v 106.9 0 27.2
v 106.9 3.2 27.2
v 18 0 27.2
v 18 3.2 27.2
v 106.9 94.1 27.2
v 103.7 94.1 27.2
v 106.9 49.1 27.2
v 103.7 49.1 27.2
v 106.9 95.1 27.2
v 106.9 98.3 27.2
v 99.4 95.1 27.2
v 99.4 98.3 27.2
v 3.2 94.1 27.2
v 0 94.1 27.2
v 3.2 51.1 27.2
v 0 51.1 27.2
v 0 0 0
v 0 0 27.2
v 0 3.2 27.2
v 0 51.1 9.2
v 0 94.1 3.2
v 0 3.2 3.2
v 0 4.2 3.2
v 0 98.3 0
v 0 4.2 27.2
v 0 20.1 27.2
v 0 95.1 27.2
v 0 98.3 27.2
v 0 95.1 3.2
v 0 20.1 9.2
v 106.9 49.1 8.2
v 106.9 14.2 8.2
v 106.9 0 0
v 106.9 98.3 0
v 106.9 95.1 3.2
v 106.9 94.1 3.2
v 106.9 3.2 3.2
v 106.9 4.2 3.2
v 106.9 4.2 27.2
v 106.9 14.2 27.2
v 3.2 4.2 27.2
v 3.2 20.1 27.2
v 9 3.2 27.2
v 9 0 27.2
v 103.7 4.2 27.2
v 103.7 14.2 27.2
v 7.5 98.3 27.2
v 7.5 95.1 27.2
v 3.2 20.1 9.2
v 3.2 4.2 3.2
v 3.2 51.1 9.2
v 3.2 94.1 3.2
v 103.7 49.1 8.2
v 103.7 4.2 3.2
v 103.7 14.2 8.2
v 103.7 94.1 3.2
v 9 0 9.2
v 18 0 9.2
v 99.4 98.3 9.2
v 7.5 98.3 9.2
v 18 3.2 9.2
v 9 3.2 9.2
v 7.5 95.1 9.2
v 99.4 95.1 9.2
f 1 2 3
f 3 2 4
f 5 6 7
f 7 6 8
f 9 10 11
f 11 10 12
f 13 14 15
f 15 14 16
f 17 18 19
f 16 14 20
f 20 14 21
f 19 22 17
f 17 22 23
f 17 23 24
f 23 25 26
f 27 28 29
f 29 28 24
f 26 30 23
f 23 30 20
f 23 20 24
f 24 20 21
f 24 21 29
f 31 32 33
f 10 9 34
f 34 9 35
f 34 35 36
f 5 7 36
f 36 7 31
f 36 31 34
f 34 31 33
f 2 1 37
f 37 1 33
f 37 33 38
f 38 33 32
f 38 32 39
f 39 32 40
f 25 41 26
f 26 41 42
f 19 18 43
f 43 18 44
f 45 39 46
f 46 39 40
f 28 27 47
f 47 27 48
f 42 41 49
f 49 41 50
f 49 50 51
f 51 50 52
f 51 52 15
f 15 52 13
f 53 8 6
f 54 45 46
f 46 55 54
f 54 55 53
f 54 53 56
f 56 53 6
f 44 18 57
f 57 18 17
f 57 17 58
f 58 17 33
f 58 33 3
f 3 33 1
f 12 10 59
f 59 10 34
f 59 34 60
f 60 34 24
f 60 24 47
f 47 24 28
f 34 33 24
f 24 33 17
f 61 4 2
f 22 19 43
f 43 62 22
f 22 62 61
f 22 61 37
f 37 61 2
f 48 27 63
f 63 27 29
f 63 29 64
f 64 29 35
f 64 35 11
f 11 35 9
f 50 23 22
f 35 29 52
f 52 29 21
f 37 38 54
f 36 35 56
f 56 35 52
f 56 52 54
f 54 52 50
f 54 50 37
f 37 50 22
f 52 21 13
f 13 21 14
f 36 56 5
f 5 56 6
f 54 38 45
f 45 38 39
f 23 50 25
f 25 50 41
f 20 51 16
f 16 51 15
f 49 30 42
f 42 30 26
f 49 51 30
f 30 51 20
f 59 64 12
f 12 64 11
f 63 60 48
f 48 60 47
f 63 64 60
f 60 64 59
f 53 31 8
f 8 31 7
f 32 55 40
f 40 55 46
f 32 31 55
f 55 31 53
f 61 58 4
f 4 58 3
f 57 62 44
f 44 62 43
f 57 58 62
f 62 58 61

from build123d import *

# Parameters (mm, degrees)
SKETCH1_W           = 106.9
SKETCH1_H           = 98.3
BOSS_EXTRUDE2_DEPTH = 3.2
SKETCH2_W           = 106.9
SKETCH2_H           = 98.3
SKETCH2_W_2         = 100.5
SKETCH2_H_2         = 91.9
BOSS_EXTRUDE3_DEPTH = 24
SKETCH3_W           = 3.2
SKETCH3_H           = 1
CUT_EXTRUDE1_DEPTH  = 24
SKETCH4_W           = 3.2
SKETCH4_H           = 31
CUT_EXTRUDE2_DEPTH  = 18
SKETCH5_W           = 91.9
SKETCH5_H           = 3.2
CUT_EXTRUDE3_DEPTH  = 18
SKETCH6_W           = 3.2
SKETCH6_H           = 34.9
CUT_EXTRUDE4_DEPTH  = 19
SKETCH7_W           = 9
SKETCH7_H           = 3.2
CUT_EXTRUDE5_DEPTH  = 18


with BuildPart() as part:
    # Sketch1 → Boss-Extrude2 (new body)
    with BuildSketch(Plane.XY):
        with Locations((53.45, 49.15)):
            Rectangle(SKETCH1_W, SKETCH1_H)
    extrude(amount=BOSS_EXTRUDE2_DEPTH)

    # Sketch2 → Boss-Extrude3 (add)
    with BuildSketch(Plane.XY.offset(3.2)):
        with Locations((53.45, 49.15)):
            Rectangle(SKETCH2_W, SKETCH2_H)
        with Locations((53.45, 49.15)):
            Rectangle(SKETCH2_W_2, SKETCH2_H_2, mode=Mode.SUBTRACT)
    extrude(amount=BOSS_EXTRUDE3_DEPTH)

    # Sketch3 → Cut-Extrude1 (cut)
    with BuildSketch(Plane.XY.offset(27.2)):
        with Locations((1.6, 94.6)):
            Rectangle(SKETCH3_W, SKETCH3_H)
        with Locations((105.3, 94.6)):
            Rectangle(SKETCH3_W, SKETCH3_H)
        with Locations((105.3, 3.7)):
            Rectangle(SKETCH3_W, SKETCH3_H)
        with Locations((1.6, 3.7)):
            Rectangle(SKETCH3_W, SKETCH3_H)
    extrude(amount=-CUT_EXTRUDE1_DEPTH, mode=Mode.SUBTRACT)

    # Sketch4 → Cut-Extrude2 (cut)
    with BuildSketch(Plane.XY.offset(27.2)):
        with Locations((1.6, 35.6)):
            Rectangle(SKETCH4_W, SKETCH4_H)
    extrude(amount=-CUT_EXTRUDE2_DEPTH, mode=Mode.SUBTRACT)

    # Sketch5 → Cut-Extrude3 (cut)
    with BuildSketch(Plane.XY.offset(27.2)):
        with Locations((53.45, 96.7)):
            Rectangle(SKETCH5_W, SKETCH5_H)
    extrude(amount=-CUT_EXTRUDE3_DEPTH, mode=Mode.SUBTRACT)

    # Sketch6 → Cut-Extrude4 (cut)
    with BuildSketch(Plane.XY.offset(27.2)):
        with Locations((105.3, 31.65)):
            Rectangle(SKETCH6_W, SKETCH6_H)
    extrude(amount=-CUT_EXTRUDE4_DEPTH, mode=Mode.SUBTRACT)

    # Sketch7 → Cut-Extrude5 (cut)
    with BuildSketch(Plane.XY.offset(27.2)):
        with Locations((13.5, 1.6)):
            Rectangle(SKETCH7_W, SKETCH7_H)
    extrude(amount=-CUT_EXTRUDE5_DEPTH, mode=Mode.SUBTRACT)


solid = part.part
